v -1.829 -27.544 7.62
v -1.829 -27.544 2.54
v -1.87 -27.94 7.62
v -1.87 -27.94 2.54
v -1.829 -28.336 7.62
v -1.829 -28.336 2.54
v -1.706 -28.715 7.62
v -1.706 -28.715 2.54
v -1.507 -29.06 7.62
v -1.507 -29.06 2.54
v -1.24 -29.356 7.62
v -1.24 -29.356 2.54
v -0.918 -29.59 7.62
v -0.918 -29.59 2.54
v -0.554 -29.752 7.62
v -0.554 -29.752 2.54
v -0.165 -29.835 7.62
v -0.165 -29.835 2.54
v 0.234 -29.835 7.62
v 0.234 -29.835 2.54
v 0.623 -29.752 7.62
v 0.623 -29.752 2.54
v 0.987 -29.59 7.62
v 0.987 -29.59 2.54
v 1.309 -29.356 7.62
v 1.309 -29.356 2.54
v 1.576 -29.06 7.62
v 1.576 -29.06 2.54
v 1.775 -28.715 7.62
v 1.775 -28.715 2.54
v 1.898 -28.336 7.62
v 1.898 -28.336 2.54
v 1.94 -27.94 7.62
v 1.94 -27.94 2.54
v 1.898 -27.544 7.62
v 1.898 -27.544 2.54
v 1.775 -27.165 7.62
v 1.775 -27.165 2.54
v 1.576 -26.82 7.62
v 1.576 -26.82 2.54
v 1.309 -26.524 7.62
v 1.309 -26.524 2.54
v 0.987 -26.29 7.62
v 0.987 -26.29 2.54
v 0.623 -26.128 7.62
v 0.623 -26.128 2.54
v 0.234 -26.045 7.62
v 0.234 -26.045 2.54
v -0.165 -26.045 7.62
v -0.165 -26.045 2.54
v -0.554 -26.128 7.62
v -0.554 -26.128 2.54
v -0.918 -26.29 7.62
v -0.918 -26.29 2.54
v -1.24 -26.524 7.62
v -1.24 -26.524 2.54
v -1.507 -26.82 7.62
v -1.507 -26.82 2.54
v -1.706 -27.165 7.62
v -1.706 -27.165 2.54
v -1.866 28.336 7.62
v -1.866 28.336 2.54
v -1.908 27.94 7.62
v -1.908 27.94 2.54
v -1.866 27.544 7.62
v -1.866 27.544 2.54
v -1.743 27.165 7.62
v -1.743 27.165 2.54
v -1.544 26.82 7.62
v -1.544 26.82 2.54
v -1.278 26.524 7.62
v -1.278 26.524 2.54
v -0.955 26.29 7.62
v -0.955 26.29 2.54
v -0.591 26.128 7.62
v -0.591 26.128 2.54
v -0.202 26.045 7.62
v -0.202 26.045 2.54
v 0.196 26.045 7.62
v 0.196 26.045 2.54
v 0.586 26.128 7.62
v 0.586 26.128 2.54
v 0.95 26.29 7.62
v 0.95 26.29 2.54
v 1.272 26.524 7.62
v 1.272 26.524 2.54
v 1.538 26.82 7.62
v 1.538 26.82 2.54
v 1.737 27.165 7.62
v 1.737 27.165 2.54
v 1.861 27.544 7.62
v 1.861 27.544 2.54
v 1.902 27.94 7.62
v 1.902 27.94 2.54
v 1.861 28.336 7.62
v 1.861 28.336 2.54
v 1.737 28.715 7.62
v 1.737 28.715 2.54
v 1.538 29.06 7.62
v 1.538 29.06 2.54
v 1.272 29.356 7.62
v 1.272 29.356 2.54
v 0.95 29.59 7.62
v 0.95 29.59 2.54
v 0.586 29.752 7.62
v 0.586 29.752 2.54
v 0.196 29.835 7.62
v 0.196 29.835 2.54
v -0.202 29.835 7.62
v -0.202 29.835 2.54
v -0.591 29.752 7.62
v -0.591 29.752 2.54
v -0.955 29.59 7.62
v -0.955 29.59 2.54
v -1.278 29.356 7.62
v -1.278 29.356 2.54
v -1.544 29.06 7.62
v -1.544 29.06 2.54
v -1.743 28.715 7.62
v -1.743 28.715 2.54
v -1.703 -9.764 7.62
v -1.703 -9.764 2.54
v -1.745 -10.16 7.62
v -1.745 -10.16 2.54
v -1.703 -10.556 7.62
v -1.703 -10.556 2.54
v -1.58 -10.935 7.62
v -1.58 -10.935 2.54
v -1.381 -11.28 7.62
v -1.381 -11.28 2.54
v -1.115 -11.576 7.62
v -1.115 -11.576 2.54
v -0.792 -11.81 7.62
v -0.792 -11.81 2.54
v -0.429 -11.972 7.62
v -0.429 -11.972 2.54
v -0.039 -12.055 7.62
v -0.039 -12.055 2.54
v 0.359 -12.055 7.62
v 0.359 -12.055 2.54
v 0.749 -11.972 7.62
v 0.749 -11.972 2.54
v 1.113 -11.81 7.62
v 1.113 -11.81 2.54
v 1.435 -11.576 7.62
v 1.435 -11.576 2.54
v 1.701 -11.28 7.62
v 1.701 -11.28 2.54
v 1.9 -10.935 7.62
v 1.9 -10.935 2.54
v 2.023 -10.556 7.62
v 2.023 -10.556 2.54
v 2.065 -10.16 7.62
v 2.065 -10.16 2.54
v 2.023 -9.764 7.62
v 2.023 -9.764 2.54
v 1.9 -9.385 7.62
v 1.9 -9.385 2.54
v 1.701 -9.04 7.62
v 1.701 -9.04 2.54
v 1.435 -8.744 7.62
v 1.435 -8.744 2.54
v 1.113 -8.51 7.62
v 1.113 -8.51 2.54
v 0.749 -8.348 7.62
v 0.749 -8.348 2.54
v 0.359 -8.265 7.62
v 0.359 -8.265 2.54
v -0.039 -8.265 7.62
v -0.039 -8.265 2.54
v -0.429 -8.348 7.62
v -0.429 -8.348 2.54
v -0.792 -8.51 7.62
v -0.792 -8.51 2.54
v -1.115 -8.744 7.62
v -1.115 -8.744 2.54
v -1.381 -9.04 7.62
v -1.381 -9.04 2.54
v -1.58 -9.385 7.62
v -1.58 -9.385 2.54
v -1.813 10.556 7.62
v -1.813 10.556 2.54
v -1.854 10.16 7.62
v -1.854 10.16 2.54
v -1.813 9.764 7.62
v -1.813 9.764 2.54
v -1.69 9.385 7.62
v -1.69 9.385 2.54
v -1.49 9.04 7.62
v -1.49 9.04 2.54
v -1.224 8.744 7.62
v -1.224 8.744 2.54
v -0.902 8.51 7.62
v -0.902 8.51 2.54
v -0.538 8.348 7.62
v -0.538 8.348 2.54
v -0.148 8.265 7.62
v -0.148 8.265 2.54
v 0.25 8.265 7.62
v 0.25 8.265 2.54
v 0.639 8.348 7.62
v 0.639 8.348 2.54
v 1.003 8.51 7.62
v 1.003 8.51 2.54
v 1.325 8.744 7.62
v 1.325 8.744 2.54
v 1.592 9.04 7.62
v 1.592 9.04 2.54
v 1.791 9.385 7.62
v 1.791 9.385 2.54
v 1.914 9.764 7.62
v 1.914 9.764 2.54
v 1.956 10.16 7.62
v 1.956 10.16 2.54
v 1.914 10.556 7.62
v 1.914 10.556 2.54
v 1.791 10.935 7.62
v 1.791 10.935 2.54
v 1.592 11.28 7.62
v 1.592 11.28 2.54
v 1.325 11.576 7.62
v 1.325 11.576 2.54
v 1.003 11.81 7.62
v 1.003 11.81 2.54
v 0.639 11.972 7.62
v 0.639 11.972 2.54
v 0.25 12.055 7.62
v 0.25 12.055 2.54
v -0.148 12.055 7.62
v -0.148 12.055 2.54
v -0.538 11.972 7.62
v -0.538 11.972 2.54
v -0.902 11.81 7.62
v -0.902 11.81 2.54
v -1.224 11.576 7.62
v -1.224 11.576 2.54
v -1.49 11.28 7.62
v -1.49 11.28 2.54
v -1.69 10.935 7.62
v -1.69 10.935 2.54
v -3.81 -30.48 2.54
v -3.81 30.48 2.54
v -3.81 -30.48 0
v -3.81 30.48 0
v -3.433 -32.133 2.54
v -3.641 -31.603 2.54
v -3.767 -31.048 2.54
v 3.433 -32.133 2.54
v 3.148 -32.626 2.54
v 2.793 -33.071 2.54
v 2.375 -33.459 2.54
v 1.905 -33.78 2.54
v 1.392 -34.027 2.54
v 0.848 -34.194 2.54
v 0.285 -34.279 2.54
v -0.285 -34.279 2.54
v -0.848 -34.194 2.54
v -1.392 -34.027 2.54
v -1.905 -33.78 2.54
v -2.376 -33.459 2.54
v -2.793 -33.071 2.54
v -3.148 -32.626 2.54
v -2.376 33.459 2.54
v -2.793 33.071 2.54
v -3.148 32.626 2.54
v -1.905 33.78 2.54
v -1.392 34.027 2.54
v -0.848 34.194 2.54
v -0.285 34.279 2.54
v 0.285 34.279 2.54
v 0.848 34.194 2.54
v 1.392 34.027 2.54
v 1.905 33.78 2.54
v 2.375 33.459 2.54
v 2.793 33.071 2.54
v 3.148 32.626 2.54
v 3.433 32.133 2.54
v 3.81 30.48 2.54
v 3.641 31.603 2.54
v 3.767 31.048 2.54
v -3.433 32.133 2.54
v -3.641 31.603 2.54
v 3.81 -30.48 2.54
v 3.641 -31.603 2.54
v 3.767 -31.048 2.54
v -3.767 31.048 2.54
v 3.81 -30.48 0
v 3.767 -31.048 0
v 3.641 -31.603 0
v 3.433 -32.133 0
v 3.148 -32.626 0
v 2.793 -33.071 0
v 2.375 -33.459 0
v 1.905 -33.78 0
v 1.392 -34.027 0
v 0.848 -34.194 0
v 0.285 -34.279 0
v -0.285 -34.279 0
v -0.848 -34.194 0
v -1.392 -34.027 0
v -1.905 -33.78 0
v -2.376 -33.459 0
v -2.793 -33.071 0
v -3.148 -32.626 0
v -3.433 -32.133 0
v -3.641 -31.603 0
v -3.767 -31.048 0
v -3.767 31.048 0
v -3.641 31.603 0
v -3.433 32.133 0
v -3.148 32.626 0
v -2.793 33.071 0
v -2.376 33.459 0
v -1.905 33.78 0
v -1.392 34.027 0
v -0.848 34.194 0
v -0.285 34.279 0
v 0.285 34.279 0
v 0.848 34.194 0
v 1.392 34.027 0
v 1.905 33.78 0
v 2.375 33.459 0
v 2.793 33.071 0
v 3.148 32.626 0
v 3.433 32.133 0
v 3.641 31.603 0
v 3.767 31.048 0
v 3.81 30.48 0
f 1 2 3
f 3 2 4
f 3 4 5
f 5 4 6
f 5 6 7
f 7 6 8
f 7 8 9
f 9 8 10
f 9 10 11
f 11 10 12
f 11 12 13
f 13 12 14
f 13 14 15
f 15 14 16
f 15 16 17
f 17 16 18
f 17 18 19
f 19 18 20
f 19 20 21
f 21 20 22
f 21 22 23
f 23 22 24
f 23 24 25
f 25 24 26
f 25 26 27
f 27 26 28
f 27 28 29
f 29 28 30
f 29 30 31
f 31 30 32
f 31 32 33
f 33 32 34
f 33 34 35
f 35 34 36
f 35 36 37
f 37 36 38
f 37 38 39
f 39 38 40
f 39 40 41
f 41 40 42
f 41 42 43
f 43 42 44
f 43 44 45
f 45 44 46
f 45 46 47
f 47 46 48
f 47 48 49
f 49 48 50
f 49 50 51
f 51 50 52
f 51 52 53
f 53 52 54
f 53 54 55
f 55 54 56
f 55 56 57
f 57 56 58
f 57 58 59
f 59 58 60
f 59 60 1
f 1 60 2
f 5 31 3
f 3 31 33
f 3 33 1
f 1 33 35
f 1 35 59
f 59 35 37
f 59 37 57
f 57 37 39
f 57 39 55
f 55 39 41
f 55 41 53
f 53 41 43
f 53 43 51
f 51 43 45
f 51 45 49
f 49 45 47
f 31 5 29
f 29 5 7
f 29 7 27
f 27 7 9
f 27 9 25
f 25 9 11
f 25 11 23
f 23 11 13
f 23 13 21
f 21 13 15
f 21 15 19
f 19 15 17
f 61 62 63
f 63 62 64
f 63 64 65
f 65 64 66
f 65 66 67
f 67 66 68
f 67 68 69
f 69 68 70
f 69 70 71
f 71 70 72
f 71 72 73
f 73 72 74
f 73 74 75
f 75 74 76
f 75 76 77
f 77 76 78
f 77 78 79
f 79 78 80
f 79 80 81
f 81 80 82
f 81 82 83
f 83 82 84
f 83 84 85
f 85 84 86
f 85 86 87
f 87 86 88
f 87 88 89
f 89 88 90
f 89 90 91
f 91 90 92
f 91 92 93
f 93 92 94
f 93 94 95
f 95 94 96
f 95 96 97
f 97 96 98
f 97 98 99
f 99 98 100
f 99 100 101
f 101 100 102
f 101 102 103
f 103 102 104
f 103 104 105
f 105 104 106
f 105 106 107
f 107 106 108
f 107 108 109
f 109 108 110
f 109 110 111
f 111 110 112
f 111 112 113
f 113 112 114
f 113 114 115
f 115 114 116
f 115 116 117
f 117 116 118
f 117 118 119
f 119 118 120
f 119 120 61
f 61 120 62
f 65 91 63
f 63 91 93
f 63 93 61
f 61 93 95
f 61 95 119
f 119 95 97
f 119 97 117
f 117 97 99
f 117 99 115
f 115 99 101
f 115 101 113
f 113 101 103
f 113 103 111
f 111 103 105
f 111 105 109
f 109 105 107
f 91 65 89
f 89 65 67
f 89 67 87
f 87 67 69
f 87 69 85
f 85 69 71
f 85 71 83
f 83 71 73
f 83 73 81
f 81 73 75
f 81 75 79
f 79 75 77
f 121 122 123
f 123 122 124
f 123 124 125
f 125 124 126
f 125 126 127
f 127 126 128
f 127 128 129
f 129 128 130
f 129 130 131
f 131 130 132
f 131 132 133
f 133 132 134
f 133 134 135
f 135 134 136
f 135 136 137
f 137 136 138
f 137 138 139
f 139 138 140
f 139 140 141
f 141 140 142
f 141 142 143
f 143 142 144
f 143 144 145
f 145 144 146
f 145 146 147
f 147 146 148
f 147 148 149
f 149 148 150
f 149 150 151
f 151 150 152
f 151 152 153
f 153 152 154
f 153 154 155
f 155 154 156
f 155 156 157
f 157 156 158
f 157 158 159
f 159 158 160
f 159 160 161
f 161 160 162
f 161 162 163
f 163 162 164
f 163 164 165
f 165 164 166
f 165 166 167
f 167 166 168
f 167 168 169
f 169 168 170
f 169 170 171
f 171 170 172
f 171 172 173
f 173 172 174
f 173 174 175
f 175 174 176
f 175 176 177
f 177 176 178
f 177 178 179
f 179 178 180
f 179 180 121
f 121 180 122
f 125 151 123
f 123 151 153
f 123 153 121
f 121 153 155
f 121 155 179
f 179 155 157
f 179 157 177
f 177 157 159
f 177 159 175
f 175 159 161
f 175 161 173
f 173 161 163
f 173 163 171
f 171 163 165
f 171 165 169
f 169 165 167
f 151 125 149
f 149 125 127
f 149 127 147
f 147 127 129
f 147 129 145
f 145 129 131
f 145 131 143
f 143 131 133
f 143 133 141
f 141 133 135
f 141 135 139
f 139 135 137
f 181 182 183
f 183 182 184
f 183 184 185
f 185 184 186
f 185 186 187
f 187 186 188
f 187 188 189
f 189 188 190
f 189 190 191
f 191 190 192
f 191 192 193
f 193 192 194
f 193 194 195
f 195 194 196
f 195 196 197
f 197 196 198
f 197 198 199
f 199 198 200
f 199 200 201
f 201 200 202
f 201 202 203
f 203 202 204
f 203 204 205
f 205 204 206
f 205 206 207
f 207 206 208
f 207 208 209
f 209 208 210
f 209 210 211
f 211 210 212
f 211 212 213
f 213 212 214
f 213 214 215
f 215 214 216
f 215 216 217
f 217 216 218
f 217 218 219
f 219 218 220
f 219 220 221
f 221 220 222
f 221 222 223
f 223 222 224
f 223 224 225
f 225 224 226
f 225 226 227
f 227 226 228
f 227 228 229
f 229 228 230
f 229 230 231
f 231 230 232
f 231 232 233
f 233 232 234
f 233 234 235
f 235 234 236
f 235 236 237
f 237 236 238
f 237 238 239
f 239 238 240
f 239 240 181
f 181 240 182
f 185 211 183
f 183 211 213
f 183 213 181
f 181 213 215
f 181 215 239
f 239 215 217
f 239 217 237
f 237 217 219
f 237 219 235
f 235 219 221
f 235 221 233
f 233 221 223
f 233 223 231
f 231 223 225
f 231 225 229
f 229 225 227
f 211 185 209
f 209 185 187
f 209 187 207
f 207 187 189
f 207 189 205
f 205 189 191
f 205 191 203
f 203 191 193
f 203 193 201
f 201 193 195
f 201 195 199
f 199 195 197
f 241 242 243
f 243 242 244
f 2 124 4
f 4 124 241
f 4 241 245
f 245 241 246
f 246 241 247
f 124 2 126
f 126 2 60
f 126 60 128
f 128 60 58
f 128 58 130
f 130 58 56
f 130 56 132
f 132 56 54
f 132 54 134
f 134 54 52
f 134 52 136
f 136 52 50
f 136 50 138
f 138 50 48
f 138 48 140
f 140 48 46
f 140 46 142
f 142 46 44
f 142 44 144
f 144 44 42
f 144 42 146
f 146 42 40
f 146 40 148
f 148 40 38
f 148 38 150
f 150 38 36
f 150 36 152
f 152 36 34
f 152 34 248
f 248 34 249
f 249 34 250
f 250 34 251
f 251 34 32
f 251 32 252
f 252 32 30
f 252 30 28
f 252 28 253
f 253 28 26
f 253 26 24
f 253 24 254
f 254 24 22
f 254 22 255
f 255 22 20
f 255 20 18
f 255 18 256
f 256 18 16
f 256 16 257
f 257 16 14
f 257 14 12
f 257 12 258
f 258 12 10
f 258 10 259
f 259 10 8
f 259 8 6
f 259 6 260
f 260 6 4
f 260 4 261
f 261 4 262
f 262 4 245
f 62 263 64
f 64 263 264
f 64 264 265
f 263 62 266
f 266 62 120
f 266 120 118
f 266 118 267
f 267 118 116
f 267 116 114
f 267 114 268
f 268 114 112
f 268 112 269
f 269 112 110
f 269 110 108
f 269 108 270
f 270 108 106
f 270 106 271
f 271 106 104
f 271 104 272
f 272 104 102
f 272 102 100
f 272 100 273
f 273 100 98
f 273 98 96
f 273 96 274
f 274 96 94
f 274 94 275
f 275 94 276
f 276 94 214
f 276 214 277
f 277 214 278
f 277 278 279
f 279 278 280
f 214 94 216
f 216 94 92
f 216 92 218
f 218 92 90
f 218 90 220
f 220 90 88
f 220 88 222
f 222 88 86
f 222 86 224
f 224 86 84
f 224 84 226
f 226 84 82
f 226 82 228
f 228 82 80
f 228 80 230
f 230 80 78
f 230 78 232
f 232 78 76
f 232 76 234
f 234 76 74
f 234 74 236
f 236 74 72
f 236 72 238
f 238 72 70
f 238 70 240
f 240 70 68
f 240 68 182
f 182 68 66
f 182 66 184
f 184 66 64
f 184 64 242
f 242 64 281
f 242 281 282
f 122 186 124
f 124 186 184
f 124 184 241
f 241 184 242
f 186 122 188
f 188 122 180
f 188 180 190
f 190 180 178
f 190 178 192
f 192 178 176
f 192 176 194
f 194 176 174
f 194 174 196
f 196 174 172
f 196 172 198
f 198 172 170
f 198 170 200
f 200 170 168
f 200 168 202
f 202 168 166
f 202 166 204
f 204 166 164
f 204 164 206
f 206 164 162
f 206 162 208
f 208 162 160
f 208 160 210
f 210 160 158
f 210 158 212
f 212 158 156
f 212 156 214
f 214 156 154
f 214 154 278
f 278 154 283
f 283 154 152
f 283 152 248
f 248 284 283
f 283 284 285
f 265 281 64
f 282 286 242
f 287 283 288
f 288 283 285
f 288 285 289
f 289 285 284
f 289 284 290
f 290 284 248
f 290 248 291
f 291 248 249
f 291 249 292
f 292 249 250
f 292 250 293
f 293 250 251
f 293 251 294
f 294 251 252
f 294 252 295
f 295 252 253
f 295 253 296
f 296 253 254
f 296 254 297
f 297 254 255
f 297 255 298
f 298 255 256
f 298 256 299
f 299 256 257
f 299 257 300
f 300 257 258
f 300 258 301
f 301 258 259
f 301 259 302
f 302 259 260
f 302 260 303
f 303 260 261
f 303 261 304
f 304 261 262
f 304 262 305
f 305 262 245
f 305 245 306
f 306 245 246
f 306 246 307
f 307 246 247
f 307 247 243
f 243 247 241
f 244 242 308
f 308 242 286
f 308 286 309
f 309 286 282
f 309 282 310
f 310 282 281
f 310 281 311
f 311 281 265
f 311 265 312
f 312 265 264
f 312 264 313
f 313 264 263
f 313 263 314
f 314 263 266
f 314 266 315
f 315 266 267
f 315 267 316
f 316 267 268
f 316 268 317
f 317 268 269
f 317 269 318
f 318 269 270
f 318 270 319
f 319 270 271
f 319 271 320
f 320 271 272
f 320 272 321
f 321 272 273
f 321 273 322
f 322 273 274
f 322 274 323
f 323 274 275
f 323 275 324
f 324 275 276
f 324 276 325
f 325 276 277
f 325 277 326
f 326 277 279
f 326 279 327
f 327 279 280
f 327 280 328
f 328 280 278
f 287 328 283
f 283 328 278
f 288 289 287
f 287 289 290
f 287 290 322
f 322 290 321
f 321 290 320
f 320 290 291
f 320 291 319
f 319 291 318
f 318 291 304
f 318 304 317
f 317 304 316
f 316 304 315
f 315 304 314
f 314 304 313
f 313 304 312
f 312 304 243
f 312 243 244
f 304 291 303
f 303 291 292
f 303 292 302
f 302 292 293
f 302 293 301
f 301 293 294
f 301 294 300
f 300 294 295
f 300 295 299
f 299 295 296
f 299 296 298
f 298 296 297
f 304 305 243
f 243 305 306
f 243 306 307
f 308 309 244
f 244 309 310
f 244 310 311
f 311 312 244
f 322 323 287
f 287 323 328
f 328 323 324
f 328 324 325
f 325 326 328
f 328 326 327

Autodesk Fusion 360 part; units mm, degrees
sketch "Sketch5" plane through (0, 0, 0) normal (0, 0, 1) x (1, 0, 0)
  line L0 (3.81, -34.29) -> (-3.81, -34.29)
  line L1 (-3.81, -34.29) -> (-3.81, 34.29)
  line L2 (-3.81, 34.29) -> (3.81, 34.29)
  line L3 (3.81, 34.29) -> (3.81, -34.29)
  line L4 (3.81, -34.29) -> (-3.81, 34.29) construction
  line L5 (-3.81, -34.29) -> (3.81, 34.29) construction
  dimension "d45" = 7.62
  dimension "d46" = 68.58
extrude "Extrude3" add sketch "Sketch5" along normal blind 2.54
fillet "Fillet2" radius 3.81 4 edges at (3.81, 34.29, 1.27) (3.81, -34.29, 1.27) (-3.81, 34.29, 1.27) (-3.81, -34.29, 1.27)
sketch "Sketch6" plane through (0, 0, 2.54) normal (0, 0, 1) x (1, 0, 0)
  arc A0 (-3.81, -30.48) -> (3.81, -30.48) centre (0, -30.48) ccw
  line L0 (3.81, -30.48) -> (3.81, 30.48)
  arc A1 (3.81, 30.48) -> (-3.81, 30.48) centre (0, 30.48) ccw
  line L1 (-3.81, 30.48) -> (-3.81, -30.48)
  circle A2 centre (-0.0028, 27.94) radius 1.905
  circle A3 centre (0.0507, 10.16) radius 1.905
  circle A4 centre (0.1601, -10.16) radius 1.905
  circle A5 centre (0.0346, -27.94) radius 1.905
  point P0 (0.0507, 10.16)
  point P1 (-0.0028, 27.94)
  point P2 (0.1601, -10.16)
  point P3 (0.0346, -27.94)
  dimension "d54" = 10.16
  dimension "d55" = 27.94
  dimension "d56" = 10.16
  dimension "d57" = 27.94
  dimension "d58" = 3.81
  dimension "d59" = 3.81
  dimension "d60" = 3.81
  dimension "d61" = 3.81
extrude "Extrude4" add sketch "Sketch6" along normal blind 5.08 contours A2 | A3 | A4 | A5
equation "shelfThickness = 0.1 in"
equation "shelfWidth = 1.5 in"
equation "shelfDepth = 1.5 in"
equation "trussThickness = 0.1 in"
equation "tabInset = trussThickness / 2"
equation "tabWidth = 0.5 in"
equation "tab1Offset = tabBaseOffset + tabWidth / 2"
equation "tab2Offset = tabBaseOffset + ( tabWidth / 2 ) + tabSeparation"
equation "tabBaseOffset = 0.15 in"
equation "tabSeparation = tabWidth + 0.2 in"
equation "trussWidth = 0.3 in"
equation "trussLength = ( 2 * tab2Offset + 0.5 in )"
equation "d45 = trussWidth"
equation "d46 = trussLength"
equation "d47 = trussThickness"
equation "tabHeight = 0.3 in"
equation "studLength = 0.2 in"
equation "studDiameter = 0.15 in"
equation "d54 = tab1Offset"
equation "d55 = tab2Offset"
equation "d56 = tab1Offset"
equation "d57 = tab2Offset"
equation "d58 = studDiameter"
equation "d59 = studDiameter"
equation "d60 = studDiameter"
equation "d61 = studDiameter"
equation "d62 = studLength"
